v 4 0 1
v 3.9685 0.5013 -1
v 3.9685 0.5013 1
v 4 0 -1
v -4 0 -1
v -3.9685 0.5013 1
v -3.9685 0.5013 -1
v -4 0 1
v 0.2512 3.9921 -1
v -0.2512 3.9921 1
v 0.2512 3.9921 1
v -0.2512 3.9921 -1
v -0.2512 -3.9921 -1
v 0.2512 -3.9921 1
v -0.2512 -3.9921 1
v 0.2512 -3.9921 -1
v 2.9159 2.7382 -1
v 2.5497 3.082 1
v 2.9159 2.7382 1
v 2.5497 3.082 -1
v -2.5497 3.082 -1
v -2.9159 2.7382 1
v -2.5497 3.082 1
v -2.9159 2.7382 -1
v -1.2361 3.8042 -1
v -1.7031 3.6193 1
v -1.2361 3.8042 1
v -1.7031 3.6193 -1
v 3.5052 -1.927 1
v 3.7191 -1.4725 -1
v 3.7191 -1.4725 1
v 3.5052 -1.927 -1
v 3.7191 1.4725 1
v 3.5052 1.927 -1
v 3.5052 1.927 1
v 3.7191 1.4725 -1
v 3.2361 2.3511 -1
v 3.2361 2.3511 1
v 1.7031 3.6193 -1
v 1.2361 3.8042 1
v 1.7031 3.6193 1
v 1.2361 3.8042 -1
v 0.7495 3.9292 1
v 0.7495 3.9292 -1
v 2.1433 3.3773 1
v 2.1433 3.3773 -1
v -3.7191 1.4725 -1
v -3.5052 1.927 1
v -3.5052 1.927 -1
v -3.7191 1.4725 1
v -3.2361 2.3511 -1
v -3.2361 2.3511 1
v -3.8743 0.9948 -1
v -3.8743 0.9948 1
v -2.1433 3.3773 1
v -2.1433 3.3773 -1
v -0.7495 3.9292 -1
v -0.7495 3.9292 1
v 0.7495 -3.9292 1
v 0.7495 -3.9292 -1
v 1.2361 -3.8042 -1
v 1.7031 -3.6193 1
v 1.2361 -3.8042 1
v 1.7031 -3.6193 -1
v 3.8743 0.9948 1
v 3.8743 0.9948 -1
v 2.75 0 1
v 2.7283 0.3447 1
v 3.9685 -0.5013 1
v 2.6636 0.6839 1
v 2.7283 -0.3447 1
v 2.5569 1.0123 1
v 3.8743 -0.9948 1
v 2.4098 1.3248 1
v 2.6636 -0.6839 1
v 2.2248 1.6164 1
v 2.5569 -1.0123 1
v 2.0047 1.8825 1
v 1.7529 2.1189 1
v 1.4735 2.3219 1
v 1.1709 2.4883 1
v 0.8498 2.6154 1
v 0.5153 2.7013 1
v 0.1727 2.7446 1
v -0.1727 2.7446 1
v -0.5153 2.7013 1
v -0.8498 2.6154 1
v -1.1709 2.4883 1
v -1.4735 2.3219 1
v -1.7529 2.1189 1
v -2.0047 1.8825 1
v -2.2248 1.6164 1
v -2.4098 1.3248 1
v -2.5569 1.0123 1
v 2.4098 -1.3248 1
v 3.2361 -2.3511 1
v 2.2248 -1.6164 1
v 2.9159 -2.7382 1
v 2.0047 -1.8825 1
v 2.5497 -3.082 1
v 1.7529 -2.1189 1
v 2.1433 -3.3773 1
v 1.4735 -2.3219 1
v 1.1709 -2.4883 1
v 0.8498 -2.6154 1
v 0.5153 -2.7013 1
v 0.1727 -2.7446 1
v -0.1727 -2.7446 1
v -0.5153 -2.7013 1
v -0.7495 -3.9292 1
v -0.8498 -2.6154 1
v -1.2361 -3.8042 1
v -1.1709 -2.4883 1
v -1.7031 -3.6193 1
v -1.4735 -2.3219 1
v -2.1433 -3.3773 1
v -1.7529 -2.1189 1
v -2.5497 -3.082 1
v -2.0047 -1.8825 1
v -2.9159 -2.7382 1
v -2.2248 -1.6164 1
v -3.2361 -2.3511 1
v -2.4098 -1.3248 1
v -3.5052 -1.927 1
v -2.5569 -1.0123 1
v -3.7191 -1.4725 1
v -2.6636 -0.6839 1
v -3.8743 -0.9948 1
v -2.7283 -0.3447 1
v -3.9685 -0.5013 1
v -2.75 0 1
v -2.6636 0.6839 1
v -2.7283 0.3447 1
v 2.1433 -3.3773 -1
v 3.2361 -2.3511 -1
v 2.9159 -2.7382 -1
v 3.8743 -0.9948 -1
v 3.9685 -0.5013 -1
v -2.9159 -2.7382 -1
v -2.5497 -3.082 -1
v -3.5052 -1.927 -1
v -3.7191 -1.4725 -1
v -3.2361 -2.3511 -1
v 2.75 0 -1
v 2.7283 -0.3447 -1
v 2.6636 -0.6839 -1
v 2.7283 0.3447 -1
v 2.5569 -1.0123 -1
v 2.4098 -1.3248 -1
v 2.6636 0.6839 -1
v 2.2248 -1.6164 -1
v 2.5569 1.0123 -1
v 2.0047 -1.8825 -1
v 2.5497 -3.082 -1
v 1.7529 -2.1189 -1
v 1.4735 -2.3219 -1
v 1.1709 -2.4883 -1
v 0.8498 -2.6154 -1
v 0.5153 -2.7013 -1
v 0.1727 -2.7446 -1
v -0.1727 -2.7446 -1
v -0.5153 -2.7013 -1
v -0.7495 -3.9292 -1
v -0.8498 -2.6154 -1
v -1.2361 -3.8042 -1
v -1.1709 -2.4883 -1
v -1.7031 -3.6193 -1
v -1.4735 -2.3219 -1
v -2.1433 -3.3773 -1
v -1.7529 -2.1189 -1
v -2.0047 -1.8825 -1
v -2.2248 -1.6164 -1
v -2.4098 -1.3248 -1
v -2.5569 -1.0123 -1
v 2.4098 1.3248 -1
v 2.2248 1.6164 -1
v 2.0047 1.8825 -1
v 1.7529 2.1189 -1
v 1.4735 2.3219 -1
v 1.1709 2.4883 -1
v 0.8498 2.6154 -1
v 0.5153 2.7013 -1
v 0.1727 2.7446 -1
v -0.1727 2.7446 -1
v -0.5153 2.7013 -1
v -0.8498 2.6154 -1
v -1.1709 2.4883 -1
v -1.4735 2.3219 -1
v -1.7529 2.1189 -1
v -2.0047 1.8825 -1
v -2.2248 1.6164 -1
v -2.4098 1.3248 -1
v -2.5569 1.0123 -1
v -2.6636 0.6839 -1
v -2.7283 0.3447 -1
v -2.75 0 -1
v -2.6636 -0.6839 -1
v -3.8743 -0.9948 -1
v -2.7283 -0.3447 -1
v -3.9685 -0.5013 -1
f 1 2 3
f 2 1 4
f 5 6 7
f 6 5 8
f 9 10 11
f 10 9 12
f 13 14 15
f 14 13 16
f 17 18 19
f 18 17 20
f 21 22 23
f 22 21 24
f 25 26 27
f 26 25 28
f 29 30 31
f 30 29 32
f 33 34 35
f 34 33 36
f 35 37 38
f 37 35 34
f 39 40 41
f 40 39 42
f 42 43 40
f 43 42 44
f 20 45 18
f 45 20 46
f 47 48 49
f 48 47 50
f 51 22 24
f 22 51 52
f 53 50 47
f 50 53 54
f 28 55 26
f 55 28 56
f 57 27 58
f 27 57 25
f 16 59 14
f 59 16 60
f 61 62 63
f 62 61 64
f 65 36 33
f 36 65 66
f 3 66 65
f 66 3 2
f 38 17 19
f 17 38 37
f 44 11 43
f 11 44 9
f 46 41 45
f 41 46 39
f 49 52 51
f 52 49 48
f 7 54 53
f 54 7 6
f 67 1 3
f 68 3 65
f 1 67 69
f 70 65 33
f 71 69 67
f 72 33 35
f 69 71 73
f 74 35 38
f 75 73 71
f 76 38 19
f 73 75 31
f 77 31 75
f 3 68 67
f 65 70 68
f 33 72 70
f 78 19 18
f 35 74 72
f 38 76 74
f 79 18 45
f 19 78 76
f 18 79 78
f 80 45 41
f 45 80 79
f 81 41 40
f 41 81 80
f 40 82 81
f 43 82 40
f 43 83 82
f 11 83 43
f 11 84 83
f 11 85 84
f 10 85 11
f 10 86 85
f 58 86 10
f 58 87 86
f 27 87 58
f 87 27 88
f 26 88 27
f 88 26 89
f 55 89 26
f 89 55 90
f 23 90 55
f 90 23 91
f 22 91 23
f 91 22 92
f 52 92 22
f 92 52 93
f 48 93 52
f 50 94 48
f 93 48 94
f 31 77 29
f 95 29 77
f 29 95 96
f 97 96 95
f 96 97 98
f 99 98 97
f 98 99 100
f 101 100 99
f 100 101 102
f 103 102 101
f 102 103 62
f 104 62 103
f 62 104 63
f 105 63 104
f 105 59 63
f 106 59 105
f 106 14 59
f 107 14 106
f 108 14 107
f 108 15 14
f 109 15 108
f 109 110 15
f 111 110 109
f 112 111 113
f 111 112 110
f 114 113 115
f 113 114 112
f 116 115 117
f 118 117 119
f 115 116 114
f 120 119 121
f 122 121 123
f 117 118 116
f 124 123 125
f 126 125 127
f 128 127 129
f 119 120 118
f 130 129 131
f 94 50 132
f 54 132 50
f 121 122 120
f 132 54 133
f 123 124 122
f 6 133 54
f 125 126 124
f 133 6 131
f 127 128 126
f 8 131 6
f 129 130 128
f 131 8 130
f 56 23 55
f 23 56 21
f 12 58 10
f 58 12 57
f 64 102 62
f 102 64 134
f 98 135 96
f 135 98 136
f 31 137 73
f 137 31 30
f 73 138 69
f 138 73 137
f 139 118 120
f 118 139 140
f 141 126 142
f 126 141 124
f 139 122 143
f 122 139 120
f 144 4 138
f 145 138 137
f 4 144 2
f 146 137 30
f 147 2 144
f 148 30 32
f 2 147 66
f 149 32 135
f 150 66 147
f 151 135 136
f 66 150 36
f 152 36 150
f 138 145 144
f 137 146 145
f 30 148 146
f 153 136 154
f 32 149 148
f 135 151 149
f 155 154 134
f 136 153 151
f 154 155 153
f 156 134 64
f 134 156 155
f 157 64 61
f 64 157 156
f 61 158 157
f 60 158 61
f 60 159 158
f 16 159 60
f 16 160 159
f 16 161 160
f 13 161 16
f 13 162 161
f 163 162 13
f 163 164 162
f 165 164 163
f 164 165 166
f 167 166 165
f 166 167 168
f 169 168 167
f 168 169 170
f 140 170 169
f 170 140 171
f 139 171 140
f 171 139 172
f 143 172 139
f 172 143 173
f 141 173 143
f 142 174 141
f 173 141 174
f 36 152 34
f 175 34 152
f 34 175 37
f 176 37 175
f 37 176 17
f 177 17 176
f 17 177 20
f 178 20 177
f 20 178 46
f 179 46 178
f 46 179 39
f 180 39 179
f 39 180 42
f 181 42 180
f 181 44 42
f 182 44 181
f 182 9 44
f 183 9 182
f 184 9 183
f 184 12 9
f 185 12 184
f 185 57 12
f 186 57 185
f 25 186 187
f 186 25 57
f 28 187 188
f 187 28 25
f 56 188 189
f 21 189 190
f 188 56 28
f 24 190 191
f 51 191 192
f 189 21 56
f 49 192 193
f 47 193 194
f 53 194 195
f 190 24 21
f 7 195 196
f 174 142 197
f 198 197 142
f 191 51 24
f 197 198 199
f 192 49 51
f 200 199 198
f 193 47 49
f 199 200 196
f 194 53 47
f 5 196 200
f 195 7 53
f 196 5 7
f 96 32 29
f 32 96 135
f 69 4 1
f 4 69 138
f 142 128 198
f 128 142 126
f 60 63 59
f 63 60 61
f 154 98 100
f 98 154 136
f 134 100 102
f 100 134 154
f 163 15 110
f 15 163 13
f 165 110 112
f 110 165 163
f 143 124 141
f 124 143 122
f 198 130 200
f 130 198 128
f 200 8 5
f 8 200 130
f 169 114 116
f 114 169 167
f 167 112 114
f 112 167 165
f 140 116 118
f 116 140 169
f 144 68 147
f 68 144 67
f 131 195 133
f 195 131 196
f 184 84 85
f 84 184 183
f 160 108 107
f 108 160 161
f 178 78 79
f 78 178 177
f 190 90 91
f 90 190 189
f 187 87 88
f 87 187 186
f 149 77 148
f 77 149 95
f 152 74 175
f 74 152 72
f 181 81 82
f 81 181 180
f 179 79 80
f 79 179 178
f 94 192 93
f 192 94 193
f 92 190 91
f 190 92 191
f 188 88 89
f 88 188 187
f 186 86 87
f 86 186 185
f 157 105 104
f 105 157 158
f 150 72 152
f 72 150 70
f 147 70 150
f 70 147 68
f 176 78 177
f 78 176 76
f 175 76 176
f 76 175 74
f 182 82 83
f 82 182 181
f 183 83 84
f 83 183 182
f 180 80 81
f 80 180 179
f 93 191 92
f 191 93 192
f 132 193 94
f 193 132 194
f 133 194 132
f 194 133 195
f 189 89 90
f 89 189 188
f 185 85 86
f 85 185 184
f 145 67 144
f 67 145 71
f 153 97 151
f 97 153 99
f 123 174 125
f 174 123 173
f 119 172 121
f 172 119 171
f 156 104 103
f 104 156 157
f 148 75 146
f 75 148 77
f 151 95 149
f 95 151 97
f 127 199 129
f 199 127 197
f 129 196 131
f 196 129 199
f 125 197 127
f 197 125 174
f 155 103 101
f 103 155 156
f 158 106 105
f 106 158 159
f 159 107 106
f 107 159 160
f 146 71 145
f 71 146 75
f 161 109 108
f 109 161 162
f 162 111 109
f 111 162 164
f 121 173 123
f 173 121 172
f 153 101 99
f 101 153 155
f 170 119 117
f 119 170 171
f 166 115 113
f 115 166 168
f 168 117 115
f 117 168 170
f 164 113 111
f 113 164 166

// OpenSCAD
$fn = 50;


difference() {
	union() {
		translate(v = [0, 0, -1.0000000000]) {
			cylinder(h = 2, r = 4.0000000000);
		}
	}
	union() {
		translate(v = [0, 0, -100.0000000000]) {
			cylinder(h = 200, r = 2.7500000000);
		}
	}
}
